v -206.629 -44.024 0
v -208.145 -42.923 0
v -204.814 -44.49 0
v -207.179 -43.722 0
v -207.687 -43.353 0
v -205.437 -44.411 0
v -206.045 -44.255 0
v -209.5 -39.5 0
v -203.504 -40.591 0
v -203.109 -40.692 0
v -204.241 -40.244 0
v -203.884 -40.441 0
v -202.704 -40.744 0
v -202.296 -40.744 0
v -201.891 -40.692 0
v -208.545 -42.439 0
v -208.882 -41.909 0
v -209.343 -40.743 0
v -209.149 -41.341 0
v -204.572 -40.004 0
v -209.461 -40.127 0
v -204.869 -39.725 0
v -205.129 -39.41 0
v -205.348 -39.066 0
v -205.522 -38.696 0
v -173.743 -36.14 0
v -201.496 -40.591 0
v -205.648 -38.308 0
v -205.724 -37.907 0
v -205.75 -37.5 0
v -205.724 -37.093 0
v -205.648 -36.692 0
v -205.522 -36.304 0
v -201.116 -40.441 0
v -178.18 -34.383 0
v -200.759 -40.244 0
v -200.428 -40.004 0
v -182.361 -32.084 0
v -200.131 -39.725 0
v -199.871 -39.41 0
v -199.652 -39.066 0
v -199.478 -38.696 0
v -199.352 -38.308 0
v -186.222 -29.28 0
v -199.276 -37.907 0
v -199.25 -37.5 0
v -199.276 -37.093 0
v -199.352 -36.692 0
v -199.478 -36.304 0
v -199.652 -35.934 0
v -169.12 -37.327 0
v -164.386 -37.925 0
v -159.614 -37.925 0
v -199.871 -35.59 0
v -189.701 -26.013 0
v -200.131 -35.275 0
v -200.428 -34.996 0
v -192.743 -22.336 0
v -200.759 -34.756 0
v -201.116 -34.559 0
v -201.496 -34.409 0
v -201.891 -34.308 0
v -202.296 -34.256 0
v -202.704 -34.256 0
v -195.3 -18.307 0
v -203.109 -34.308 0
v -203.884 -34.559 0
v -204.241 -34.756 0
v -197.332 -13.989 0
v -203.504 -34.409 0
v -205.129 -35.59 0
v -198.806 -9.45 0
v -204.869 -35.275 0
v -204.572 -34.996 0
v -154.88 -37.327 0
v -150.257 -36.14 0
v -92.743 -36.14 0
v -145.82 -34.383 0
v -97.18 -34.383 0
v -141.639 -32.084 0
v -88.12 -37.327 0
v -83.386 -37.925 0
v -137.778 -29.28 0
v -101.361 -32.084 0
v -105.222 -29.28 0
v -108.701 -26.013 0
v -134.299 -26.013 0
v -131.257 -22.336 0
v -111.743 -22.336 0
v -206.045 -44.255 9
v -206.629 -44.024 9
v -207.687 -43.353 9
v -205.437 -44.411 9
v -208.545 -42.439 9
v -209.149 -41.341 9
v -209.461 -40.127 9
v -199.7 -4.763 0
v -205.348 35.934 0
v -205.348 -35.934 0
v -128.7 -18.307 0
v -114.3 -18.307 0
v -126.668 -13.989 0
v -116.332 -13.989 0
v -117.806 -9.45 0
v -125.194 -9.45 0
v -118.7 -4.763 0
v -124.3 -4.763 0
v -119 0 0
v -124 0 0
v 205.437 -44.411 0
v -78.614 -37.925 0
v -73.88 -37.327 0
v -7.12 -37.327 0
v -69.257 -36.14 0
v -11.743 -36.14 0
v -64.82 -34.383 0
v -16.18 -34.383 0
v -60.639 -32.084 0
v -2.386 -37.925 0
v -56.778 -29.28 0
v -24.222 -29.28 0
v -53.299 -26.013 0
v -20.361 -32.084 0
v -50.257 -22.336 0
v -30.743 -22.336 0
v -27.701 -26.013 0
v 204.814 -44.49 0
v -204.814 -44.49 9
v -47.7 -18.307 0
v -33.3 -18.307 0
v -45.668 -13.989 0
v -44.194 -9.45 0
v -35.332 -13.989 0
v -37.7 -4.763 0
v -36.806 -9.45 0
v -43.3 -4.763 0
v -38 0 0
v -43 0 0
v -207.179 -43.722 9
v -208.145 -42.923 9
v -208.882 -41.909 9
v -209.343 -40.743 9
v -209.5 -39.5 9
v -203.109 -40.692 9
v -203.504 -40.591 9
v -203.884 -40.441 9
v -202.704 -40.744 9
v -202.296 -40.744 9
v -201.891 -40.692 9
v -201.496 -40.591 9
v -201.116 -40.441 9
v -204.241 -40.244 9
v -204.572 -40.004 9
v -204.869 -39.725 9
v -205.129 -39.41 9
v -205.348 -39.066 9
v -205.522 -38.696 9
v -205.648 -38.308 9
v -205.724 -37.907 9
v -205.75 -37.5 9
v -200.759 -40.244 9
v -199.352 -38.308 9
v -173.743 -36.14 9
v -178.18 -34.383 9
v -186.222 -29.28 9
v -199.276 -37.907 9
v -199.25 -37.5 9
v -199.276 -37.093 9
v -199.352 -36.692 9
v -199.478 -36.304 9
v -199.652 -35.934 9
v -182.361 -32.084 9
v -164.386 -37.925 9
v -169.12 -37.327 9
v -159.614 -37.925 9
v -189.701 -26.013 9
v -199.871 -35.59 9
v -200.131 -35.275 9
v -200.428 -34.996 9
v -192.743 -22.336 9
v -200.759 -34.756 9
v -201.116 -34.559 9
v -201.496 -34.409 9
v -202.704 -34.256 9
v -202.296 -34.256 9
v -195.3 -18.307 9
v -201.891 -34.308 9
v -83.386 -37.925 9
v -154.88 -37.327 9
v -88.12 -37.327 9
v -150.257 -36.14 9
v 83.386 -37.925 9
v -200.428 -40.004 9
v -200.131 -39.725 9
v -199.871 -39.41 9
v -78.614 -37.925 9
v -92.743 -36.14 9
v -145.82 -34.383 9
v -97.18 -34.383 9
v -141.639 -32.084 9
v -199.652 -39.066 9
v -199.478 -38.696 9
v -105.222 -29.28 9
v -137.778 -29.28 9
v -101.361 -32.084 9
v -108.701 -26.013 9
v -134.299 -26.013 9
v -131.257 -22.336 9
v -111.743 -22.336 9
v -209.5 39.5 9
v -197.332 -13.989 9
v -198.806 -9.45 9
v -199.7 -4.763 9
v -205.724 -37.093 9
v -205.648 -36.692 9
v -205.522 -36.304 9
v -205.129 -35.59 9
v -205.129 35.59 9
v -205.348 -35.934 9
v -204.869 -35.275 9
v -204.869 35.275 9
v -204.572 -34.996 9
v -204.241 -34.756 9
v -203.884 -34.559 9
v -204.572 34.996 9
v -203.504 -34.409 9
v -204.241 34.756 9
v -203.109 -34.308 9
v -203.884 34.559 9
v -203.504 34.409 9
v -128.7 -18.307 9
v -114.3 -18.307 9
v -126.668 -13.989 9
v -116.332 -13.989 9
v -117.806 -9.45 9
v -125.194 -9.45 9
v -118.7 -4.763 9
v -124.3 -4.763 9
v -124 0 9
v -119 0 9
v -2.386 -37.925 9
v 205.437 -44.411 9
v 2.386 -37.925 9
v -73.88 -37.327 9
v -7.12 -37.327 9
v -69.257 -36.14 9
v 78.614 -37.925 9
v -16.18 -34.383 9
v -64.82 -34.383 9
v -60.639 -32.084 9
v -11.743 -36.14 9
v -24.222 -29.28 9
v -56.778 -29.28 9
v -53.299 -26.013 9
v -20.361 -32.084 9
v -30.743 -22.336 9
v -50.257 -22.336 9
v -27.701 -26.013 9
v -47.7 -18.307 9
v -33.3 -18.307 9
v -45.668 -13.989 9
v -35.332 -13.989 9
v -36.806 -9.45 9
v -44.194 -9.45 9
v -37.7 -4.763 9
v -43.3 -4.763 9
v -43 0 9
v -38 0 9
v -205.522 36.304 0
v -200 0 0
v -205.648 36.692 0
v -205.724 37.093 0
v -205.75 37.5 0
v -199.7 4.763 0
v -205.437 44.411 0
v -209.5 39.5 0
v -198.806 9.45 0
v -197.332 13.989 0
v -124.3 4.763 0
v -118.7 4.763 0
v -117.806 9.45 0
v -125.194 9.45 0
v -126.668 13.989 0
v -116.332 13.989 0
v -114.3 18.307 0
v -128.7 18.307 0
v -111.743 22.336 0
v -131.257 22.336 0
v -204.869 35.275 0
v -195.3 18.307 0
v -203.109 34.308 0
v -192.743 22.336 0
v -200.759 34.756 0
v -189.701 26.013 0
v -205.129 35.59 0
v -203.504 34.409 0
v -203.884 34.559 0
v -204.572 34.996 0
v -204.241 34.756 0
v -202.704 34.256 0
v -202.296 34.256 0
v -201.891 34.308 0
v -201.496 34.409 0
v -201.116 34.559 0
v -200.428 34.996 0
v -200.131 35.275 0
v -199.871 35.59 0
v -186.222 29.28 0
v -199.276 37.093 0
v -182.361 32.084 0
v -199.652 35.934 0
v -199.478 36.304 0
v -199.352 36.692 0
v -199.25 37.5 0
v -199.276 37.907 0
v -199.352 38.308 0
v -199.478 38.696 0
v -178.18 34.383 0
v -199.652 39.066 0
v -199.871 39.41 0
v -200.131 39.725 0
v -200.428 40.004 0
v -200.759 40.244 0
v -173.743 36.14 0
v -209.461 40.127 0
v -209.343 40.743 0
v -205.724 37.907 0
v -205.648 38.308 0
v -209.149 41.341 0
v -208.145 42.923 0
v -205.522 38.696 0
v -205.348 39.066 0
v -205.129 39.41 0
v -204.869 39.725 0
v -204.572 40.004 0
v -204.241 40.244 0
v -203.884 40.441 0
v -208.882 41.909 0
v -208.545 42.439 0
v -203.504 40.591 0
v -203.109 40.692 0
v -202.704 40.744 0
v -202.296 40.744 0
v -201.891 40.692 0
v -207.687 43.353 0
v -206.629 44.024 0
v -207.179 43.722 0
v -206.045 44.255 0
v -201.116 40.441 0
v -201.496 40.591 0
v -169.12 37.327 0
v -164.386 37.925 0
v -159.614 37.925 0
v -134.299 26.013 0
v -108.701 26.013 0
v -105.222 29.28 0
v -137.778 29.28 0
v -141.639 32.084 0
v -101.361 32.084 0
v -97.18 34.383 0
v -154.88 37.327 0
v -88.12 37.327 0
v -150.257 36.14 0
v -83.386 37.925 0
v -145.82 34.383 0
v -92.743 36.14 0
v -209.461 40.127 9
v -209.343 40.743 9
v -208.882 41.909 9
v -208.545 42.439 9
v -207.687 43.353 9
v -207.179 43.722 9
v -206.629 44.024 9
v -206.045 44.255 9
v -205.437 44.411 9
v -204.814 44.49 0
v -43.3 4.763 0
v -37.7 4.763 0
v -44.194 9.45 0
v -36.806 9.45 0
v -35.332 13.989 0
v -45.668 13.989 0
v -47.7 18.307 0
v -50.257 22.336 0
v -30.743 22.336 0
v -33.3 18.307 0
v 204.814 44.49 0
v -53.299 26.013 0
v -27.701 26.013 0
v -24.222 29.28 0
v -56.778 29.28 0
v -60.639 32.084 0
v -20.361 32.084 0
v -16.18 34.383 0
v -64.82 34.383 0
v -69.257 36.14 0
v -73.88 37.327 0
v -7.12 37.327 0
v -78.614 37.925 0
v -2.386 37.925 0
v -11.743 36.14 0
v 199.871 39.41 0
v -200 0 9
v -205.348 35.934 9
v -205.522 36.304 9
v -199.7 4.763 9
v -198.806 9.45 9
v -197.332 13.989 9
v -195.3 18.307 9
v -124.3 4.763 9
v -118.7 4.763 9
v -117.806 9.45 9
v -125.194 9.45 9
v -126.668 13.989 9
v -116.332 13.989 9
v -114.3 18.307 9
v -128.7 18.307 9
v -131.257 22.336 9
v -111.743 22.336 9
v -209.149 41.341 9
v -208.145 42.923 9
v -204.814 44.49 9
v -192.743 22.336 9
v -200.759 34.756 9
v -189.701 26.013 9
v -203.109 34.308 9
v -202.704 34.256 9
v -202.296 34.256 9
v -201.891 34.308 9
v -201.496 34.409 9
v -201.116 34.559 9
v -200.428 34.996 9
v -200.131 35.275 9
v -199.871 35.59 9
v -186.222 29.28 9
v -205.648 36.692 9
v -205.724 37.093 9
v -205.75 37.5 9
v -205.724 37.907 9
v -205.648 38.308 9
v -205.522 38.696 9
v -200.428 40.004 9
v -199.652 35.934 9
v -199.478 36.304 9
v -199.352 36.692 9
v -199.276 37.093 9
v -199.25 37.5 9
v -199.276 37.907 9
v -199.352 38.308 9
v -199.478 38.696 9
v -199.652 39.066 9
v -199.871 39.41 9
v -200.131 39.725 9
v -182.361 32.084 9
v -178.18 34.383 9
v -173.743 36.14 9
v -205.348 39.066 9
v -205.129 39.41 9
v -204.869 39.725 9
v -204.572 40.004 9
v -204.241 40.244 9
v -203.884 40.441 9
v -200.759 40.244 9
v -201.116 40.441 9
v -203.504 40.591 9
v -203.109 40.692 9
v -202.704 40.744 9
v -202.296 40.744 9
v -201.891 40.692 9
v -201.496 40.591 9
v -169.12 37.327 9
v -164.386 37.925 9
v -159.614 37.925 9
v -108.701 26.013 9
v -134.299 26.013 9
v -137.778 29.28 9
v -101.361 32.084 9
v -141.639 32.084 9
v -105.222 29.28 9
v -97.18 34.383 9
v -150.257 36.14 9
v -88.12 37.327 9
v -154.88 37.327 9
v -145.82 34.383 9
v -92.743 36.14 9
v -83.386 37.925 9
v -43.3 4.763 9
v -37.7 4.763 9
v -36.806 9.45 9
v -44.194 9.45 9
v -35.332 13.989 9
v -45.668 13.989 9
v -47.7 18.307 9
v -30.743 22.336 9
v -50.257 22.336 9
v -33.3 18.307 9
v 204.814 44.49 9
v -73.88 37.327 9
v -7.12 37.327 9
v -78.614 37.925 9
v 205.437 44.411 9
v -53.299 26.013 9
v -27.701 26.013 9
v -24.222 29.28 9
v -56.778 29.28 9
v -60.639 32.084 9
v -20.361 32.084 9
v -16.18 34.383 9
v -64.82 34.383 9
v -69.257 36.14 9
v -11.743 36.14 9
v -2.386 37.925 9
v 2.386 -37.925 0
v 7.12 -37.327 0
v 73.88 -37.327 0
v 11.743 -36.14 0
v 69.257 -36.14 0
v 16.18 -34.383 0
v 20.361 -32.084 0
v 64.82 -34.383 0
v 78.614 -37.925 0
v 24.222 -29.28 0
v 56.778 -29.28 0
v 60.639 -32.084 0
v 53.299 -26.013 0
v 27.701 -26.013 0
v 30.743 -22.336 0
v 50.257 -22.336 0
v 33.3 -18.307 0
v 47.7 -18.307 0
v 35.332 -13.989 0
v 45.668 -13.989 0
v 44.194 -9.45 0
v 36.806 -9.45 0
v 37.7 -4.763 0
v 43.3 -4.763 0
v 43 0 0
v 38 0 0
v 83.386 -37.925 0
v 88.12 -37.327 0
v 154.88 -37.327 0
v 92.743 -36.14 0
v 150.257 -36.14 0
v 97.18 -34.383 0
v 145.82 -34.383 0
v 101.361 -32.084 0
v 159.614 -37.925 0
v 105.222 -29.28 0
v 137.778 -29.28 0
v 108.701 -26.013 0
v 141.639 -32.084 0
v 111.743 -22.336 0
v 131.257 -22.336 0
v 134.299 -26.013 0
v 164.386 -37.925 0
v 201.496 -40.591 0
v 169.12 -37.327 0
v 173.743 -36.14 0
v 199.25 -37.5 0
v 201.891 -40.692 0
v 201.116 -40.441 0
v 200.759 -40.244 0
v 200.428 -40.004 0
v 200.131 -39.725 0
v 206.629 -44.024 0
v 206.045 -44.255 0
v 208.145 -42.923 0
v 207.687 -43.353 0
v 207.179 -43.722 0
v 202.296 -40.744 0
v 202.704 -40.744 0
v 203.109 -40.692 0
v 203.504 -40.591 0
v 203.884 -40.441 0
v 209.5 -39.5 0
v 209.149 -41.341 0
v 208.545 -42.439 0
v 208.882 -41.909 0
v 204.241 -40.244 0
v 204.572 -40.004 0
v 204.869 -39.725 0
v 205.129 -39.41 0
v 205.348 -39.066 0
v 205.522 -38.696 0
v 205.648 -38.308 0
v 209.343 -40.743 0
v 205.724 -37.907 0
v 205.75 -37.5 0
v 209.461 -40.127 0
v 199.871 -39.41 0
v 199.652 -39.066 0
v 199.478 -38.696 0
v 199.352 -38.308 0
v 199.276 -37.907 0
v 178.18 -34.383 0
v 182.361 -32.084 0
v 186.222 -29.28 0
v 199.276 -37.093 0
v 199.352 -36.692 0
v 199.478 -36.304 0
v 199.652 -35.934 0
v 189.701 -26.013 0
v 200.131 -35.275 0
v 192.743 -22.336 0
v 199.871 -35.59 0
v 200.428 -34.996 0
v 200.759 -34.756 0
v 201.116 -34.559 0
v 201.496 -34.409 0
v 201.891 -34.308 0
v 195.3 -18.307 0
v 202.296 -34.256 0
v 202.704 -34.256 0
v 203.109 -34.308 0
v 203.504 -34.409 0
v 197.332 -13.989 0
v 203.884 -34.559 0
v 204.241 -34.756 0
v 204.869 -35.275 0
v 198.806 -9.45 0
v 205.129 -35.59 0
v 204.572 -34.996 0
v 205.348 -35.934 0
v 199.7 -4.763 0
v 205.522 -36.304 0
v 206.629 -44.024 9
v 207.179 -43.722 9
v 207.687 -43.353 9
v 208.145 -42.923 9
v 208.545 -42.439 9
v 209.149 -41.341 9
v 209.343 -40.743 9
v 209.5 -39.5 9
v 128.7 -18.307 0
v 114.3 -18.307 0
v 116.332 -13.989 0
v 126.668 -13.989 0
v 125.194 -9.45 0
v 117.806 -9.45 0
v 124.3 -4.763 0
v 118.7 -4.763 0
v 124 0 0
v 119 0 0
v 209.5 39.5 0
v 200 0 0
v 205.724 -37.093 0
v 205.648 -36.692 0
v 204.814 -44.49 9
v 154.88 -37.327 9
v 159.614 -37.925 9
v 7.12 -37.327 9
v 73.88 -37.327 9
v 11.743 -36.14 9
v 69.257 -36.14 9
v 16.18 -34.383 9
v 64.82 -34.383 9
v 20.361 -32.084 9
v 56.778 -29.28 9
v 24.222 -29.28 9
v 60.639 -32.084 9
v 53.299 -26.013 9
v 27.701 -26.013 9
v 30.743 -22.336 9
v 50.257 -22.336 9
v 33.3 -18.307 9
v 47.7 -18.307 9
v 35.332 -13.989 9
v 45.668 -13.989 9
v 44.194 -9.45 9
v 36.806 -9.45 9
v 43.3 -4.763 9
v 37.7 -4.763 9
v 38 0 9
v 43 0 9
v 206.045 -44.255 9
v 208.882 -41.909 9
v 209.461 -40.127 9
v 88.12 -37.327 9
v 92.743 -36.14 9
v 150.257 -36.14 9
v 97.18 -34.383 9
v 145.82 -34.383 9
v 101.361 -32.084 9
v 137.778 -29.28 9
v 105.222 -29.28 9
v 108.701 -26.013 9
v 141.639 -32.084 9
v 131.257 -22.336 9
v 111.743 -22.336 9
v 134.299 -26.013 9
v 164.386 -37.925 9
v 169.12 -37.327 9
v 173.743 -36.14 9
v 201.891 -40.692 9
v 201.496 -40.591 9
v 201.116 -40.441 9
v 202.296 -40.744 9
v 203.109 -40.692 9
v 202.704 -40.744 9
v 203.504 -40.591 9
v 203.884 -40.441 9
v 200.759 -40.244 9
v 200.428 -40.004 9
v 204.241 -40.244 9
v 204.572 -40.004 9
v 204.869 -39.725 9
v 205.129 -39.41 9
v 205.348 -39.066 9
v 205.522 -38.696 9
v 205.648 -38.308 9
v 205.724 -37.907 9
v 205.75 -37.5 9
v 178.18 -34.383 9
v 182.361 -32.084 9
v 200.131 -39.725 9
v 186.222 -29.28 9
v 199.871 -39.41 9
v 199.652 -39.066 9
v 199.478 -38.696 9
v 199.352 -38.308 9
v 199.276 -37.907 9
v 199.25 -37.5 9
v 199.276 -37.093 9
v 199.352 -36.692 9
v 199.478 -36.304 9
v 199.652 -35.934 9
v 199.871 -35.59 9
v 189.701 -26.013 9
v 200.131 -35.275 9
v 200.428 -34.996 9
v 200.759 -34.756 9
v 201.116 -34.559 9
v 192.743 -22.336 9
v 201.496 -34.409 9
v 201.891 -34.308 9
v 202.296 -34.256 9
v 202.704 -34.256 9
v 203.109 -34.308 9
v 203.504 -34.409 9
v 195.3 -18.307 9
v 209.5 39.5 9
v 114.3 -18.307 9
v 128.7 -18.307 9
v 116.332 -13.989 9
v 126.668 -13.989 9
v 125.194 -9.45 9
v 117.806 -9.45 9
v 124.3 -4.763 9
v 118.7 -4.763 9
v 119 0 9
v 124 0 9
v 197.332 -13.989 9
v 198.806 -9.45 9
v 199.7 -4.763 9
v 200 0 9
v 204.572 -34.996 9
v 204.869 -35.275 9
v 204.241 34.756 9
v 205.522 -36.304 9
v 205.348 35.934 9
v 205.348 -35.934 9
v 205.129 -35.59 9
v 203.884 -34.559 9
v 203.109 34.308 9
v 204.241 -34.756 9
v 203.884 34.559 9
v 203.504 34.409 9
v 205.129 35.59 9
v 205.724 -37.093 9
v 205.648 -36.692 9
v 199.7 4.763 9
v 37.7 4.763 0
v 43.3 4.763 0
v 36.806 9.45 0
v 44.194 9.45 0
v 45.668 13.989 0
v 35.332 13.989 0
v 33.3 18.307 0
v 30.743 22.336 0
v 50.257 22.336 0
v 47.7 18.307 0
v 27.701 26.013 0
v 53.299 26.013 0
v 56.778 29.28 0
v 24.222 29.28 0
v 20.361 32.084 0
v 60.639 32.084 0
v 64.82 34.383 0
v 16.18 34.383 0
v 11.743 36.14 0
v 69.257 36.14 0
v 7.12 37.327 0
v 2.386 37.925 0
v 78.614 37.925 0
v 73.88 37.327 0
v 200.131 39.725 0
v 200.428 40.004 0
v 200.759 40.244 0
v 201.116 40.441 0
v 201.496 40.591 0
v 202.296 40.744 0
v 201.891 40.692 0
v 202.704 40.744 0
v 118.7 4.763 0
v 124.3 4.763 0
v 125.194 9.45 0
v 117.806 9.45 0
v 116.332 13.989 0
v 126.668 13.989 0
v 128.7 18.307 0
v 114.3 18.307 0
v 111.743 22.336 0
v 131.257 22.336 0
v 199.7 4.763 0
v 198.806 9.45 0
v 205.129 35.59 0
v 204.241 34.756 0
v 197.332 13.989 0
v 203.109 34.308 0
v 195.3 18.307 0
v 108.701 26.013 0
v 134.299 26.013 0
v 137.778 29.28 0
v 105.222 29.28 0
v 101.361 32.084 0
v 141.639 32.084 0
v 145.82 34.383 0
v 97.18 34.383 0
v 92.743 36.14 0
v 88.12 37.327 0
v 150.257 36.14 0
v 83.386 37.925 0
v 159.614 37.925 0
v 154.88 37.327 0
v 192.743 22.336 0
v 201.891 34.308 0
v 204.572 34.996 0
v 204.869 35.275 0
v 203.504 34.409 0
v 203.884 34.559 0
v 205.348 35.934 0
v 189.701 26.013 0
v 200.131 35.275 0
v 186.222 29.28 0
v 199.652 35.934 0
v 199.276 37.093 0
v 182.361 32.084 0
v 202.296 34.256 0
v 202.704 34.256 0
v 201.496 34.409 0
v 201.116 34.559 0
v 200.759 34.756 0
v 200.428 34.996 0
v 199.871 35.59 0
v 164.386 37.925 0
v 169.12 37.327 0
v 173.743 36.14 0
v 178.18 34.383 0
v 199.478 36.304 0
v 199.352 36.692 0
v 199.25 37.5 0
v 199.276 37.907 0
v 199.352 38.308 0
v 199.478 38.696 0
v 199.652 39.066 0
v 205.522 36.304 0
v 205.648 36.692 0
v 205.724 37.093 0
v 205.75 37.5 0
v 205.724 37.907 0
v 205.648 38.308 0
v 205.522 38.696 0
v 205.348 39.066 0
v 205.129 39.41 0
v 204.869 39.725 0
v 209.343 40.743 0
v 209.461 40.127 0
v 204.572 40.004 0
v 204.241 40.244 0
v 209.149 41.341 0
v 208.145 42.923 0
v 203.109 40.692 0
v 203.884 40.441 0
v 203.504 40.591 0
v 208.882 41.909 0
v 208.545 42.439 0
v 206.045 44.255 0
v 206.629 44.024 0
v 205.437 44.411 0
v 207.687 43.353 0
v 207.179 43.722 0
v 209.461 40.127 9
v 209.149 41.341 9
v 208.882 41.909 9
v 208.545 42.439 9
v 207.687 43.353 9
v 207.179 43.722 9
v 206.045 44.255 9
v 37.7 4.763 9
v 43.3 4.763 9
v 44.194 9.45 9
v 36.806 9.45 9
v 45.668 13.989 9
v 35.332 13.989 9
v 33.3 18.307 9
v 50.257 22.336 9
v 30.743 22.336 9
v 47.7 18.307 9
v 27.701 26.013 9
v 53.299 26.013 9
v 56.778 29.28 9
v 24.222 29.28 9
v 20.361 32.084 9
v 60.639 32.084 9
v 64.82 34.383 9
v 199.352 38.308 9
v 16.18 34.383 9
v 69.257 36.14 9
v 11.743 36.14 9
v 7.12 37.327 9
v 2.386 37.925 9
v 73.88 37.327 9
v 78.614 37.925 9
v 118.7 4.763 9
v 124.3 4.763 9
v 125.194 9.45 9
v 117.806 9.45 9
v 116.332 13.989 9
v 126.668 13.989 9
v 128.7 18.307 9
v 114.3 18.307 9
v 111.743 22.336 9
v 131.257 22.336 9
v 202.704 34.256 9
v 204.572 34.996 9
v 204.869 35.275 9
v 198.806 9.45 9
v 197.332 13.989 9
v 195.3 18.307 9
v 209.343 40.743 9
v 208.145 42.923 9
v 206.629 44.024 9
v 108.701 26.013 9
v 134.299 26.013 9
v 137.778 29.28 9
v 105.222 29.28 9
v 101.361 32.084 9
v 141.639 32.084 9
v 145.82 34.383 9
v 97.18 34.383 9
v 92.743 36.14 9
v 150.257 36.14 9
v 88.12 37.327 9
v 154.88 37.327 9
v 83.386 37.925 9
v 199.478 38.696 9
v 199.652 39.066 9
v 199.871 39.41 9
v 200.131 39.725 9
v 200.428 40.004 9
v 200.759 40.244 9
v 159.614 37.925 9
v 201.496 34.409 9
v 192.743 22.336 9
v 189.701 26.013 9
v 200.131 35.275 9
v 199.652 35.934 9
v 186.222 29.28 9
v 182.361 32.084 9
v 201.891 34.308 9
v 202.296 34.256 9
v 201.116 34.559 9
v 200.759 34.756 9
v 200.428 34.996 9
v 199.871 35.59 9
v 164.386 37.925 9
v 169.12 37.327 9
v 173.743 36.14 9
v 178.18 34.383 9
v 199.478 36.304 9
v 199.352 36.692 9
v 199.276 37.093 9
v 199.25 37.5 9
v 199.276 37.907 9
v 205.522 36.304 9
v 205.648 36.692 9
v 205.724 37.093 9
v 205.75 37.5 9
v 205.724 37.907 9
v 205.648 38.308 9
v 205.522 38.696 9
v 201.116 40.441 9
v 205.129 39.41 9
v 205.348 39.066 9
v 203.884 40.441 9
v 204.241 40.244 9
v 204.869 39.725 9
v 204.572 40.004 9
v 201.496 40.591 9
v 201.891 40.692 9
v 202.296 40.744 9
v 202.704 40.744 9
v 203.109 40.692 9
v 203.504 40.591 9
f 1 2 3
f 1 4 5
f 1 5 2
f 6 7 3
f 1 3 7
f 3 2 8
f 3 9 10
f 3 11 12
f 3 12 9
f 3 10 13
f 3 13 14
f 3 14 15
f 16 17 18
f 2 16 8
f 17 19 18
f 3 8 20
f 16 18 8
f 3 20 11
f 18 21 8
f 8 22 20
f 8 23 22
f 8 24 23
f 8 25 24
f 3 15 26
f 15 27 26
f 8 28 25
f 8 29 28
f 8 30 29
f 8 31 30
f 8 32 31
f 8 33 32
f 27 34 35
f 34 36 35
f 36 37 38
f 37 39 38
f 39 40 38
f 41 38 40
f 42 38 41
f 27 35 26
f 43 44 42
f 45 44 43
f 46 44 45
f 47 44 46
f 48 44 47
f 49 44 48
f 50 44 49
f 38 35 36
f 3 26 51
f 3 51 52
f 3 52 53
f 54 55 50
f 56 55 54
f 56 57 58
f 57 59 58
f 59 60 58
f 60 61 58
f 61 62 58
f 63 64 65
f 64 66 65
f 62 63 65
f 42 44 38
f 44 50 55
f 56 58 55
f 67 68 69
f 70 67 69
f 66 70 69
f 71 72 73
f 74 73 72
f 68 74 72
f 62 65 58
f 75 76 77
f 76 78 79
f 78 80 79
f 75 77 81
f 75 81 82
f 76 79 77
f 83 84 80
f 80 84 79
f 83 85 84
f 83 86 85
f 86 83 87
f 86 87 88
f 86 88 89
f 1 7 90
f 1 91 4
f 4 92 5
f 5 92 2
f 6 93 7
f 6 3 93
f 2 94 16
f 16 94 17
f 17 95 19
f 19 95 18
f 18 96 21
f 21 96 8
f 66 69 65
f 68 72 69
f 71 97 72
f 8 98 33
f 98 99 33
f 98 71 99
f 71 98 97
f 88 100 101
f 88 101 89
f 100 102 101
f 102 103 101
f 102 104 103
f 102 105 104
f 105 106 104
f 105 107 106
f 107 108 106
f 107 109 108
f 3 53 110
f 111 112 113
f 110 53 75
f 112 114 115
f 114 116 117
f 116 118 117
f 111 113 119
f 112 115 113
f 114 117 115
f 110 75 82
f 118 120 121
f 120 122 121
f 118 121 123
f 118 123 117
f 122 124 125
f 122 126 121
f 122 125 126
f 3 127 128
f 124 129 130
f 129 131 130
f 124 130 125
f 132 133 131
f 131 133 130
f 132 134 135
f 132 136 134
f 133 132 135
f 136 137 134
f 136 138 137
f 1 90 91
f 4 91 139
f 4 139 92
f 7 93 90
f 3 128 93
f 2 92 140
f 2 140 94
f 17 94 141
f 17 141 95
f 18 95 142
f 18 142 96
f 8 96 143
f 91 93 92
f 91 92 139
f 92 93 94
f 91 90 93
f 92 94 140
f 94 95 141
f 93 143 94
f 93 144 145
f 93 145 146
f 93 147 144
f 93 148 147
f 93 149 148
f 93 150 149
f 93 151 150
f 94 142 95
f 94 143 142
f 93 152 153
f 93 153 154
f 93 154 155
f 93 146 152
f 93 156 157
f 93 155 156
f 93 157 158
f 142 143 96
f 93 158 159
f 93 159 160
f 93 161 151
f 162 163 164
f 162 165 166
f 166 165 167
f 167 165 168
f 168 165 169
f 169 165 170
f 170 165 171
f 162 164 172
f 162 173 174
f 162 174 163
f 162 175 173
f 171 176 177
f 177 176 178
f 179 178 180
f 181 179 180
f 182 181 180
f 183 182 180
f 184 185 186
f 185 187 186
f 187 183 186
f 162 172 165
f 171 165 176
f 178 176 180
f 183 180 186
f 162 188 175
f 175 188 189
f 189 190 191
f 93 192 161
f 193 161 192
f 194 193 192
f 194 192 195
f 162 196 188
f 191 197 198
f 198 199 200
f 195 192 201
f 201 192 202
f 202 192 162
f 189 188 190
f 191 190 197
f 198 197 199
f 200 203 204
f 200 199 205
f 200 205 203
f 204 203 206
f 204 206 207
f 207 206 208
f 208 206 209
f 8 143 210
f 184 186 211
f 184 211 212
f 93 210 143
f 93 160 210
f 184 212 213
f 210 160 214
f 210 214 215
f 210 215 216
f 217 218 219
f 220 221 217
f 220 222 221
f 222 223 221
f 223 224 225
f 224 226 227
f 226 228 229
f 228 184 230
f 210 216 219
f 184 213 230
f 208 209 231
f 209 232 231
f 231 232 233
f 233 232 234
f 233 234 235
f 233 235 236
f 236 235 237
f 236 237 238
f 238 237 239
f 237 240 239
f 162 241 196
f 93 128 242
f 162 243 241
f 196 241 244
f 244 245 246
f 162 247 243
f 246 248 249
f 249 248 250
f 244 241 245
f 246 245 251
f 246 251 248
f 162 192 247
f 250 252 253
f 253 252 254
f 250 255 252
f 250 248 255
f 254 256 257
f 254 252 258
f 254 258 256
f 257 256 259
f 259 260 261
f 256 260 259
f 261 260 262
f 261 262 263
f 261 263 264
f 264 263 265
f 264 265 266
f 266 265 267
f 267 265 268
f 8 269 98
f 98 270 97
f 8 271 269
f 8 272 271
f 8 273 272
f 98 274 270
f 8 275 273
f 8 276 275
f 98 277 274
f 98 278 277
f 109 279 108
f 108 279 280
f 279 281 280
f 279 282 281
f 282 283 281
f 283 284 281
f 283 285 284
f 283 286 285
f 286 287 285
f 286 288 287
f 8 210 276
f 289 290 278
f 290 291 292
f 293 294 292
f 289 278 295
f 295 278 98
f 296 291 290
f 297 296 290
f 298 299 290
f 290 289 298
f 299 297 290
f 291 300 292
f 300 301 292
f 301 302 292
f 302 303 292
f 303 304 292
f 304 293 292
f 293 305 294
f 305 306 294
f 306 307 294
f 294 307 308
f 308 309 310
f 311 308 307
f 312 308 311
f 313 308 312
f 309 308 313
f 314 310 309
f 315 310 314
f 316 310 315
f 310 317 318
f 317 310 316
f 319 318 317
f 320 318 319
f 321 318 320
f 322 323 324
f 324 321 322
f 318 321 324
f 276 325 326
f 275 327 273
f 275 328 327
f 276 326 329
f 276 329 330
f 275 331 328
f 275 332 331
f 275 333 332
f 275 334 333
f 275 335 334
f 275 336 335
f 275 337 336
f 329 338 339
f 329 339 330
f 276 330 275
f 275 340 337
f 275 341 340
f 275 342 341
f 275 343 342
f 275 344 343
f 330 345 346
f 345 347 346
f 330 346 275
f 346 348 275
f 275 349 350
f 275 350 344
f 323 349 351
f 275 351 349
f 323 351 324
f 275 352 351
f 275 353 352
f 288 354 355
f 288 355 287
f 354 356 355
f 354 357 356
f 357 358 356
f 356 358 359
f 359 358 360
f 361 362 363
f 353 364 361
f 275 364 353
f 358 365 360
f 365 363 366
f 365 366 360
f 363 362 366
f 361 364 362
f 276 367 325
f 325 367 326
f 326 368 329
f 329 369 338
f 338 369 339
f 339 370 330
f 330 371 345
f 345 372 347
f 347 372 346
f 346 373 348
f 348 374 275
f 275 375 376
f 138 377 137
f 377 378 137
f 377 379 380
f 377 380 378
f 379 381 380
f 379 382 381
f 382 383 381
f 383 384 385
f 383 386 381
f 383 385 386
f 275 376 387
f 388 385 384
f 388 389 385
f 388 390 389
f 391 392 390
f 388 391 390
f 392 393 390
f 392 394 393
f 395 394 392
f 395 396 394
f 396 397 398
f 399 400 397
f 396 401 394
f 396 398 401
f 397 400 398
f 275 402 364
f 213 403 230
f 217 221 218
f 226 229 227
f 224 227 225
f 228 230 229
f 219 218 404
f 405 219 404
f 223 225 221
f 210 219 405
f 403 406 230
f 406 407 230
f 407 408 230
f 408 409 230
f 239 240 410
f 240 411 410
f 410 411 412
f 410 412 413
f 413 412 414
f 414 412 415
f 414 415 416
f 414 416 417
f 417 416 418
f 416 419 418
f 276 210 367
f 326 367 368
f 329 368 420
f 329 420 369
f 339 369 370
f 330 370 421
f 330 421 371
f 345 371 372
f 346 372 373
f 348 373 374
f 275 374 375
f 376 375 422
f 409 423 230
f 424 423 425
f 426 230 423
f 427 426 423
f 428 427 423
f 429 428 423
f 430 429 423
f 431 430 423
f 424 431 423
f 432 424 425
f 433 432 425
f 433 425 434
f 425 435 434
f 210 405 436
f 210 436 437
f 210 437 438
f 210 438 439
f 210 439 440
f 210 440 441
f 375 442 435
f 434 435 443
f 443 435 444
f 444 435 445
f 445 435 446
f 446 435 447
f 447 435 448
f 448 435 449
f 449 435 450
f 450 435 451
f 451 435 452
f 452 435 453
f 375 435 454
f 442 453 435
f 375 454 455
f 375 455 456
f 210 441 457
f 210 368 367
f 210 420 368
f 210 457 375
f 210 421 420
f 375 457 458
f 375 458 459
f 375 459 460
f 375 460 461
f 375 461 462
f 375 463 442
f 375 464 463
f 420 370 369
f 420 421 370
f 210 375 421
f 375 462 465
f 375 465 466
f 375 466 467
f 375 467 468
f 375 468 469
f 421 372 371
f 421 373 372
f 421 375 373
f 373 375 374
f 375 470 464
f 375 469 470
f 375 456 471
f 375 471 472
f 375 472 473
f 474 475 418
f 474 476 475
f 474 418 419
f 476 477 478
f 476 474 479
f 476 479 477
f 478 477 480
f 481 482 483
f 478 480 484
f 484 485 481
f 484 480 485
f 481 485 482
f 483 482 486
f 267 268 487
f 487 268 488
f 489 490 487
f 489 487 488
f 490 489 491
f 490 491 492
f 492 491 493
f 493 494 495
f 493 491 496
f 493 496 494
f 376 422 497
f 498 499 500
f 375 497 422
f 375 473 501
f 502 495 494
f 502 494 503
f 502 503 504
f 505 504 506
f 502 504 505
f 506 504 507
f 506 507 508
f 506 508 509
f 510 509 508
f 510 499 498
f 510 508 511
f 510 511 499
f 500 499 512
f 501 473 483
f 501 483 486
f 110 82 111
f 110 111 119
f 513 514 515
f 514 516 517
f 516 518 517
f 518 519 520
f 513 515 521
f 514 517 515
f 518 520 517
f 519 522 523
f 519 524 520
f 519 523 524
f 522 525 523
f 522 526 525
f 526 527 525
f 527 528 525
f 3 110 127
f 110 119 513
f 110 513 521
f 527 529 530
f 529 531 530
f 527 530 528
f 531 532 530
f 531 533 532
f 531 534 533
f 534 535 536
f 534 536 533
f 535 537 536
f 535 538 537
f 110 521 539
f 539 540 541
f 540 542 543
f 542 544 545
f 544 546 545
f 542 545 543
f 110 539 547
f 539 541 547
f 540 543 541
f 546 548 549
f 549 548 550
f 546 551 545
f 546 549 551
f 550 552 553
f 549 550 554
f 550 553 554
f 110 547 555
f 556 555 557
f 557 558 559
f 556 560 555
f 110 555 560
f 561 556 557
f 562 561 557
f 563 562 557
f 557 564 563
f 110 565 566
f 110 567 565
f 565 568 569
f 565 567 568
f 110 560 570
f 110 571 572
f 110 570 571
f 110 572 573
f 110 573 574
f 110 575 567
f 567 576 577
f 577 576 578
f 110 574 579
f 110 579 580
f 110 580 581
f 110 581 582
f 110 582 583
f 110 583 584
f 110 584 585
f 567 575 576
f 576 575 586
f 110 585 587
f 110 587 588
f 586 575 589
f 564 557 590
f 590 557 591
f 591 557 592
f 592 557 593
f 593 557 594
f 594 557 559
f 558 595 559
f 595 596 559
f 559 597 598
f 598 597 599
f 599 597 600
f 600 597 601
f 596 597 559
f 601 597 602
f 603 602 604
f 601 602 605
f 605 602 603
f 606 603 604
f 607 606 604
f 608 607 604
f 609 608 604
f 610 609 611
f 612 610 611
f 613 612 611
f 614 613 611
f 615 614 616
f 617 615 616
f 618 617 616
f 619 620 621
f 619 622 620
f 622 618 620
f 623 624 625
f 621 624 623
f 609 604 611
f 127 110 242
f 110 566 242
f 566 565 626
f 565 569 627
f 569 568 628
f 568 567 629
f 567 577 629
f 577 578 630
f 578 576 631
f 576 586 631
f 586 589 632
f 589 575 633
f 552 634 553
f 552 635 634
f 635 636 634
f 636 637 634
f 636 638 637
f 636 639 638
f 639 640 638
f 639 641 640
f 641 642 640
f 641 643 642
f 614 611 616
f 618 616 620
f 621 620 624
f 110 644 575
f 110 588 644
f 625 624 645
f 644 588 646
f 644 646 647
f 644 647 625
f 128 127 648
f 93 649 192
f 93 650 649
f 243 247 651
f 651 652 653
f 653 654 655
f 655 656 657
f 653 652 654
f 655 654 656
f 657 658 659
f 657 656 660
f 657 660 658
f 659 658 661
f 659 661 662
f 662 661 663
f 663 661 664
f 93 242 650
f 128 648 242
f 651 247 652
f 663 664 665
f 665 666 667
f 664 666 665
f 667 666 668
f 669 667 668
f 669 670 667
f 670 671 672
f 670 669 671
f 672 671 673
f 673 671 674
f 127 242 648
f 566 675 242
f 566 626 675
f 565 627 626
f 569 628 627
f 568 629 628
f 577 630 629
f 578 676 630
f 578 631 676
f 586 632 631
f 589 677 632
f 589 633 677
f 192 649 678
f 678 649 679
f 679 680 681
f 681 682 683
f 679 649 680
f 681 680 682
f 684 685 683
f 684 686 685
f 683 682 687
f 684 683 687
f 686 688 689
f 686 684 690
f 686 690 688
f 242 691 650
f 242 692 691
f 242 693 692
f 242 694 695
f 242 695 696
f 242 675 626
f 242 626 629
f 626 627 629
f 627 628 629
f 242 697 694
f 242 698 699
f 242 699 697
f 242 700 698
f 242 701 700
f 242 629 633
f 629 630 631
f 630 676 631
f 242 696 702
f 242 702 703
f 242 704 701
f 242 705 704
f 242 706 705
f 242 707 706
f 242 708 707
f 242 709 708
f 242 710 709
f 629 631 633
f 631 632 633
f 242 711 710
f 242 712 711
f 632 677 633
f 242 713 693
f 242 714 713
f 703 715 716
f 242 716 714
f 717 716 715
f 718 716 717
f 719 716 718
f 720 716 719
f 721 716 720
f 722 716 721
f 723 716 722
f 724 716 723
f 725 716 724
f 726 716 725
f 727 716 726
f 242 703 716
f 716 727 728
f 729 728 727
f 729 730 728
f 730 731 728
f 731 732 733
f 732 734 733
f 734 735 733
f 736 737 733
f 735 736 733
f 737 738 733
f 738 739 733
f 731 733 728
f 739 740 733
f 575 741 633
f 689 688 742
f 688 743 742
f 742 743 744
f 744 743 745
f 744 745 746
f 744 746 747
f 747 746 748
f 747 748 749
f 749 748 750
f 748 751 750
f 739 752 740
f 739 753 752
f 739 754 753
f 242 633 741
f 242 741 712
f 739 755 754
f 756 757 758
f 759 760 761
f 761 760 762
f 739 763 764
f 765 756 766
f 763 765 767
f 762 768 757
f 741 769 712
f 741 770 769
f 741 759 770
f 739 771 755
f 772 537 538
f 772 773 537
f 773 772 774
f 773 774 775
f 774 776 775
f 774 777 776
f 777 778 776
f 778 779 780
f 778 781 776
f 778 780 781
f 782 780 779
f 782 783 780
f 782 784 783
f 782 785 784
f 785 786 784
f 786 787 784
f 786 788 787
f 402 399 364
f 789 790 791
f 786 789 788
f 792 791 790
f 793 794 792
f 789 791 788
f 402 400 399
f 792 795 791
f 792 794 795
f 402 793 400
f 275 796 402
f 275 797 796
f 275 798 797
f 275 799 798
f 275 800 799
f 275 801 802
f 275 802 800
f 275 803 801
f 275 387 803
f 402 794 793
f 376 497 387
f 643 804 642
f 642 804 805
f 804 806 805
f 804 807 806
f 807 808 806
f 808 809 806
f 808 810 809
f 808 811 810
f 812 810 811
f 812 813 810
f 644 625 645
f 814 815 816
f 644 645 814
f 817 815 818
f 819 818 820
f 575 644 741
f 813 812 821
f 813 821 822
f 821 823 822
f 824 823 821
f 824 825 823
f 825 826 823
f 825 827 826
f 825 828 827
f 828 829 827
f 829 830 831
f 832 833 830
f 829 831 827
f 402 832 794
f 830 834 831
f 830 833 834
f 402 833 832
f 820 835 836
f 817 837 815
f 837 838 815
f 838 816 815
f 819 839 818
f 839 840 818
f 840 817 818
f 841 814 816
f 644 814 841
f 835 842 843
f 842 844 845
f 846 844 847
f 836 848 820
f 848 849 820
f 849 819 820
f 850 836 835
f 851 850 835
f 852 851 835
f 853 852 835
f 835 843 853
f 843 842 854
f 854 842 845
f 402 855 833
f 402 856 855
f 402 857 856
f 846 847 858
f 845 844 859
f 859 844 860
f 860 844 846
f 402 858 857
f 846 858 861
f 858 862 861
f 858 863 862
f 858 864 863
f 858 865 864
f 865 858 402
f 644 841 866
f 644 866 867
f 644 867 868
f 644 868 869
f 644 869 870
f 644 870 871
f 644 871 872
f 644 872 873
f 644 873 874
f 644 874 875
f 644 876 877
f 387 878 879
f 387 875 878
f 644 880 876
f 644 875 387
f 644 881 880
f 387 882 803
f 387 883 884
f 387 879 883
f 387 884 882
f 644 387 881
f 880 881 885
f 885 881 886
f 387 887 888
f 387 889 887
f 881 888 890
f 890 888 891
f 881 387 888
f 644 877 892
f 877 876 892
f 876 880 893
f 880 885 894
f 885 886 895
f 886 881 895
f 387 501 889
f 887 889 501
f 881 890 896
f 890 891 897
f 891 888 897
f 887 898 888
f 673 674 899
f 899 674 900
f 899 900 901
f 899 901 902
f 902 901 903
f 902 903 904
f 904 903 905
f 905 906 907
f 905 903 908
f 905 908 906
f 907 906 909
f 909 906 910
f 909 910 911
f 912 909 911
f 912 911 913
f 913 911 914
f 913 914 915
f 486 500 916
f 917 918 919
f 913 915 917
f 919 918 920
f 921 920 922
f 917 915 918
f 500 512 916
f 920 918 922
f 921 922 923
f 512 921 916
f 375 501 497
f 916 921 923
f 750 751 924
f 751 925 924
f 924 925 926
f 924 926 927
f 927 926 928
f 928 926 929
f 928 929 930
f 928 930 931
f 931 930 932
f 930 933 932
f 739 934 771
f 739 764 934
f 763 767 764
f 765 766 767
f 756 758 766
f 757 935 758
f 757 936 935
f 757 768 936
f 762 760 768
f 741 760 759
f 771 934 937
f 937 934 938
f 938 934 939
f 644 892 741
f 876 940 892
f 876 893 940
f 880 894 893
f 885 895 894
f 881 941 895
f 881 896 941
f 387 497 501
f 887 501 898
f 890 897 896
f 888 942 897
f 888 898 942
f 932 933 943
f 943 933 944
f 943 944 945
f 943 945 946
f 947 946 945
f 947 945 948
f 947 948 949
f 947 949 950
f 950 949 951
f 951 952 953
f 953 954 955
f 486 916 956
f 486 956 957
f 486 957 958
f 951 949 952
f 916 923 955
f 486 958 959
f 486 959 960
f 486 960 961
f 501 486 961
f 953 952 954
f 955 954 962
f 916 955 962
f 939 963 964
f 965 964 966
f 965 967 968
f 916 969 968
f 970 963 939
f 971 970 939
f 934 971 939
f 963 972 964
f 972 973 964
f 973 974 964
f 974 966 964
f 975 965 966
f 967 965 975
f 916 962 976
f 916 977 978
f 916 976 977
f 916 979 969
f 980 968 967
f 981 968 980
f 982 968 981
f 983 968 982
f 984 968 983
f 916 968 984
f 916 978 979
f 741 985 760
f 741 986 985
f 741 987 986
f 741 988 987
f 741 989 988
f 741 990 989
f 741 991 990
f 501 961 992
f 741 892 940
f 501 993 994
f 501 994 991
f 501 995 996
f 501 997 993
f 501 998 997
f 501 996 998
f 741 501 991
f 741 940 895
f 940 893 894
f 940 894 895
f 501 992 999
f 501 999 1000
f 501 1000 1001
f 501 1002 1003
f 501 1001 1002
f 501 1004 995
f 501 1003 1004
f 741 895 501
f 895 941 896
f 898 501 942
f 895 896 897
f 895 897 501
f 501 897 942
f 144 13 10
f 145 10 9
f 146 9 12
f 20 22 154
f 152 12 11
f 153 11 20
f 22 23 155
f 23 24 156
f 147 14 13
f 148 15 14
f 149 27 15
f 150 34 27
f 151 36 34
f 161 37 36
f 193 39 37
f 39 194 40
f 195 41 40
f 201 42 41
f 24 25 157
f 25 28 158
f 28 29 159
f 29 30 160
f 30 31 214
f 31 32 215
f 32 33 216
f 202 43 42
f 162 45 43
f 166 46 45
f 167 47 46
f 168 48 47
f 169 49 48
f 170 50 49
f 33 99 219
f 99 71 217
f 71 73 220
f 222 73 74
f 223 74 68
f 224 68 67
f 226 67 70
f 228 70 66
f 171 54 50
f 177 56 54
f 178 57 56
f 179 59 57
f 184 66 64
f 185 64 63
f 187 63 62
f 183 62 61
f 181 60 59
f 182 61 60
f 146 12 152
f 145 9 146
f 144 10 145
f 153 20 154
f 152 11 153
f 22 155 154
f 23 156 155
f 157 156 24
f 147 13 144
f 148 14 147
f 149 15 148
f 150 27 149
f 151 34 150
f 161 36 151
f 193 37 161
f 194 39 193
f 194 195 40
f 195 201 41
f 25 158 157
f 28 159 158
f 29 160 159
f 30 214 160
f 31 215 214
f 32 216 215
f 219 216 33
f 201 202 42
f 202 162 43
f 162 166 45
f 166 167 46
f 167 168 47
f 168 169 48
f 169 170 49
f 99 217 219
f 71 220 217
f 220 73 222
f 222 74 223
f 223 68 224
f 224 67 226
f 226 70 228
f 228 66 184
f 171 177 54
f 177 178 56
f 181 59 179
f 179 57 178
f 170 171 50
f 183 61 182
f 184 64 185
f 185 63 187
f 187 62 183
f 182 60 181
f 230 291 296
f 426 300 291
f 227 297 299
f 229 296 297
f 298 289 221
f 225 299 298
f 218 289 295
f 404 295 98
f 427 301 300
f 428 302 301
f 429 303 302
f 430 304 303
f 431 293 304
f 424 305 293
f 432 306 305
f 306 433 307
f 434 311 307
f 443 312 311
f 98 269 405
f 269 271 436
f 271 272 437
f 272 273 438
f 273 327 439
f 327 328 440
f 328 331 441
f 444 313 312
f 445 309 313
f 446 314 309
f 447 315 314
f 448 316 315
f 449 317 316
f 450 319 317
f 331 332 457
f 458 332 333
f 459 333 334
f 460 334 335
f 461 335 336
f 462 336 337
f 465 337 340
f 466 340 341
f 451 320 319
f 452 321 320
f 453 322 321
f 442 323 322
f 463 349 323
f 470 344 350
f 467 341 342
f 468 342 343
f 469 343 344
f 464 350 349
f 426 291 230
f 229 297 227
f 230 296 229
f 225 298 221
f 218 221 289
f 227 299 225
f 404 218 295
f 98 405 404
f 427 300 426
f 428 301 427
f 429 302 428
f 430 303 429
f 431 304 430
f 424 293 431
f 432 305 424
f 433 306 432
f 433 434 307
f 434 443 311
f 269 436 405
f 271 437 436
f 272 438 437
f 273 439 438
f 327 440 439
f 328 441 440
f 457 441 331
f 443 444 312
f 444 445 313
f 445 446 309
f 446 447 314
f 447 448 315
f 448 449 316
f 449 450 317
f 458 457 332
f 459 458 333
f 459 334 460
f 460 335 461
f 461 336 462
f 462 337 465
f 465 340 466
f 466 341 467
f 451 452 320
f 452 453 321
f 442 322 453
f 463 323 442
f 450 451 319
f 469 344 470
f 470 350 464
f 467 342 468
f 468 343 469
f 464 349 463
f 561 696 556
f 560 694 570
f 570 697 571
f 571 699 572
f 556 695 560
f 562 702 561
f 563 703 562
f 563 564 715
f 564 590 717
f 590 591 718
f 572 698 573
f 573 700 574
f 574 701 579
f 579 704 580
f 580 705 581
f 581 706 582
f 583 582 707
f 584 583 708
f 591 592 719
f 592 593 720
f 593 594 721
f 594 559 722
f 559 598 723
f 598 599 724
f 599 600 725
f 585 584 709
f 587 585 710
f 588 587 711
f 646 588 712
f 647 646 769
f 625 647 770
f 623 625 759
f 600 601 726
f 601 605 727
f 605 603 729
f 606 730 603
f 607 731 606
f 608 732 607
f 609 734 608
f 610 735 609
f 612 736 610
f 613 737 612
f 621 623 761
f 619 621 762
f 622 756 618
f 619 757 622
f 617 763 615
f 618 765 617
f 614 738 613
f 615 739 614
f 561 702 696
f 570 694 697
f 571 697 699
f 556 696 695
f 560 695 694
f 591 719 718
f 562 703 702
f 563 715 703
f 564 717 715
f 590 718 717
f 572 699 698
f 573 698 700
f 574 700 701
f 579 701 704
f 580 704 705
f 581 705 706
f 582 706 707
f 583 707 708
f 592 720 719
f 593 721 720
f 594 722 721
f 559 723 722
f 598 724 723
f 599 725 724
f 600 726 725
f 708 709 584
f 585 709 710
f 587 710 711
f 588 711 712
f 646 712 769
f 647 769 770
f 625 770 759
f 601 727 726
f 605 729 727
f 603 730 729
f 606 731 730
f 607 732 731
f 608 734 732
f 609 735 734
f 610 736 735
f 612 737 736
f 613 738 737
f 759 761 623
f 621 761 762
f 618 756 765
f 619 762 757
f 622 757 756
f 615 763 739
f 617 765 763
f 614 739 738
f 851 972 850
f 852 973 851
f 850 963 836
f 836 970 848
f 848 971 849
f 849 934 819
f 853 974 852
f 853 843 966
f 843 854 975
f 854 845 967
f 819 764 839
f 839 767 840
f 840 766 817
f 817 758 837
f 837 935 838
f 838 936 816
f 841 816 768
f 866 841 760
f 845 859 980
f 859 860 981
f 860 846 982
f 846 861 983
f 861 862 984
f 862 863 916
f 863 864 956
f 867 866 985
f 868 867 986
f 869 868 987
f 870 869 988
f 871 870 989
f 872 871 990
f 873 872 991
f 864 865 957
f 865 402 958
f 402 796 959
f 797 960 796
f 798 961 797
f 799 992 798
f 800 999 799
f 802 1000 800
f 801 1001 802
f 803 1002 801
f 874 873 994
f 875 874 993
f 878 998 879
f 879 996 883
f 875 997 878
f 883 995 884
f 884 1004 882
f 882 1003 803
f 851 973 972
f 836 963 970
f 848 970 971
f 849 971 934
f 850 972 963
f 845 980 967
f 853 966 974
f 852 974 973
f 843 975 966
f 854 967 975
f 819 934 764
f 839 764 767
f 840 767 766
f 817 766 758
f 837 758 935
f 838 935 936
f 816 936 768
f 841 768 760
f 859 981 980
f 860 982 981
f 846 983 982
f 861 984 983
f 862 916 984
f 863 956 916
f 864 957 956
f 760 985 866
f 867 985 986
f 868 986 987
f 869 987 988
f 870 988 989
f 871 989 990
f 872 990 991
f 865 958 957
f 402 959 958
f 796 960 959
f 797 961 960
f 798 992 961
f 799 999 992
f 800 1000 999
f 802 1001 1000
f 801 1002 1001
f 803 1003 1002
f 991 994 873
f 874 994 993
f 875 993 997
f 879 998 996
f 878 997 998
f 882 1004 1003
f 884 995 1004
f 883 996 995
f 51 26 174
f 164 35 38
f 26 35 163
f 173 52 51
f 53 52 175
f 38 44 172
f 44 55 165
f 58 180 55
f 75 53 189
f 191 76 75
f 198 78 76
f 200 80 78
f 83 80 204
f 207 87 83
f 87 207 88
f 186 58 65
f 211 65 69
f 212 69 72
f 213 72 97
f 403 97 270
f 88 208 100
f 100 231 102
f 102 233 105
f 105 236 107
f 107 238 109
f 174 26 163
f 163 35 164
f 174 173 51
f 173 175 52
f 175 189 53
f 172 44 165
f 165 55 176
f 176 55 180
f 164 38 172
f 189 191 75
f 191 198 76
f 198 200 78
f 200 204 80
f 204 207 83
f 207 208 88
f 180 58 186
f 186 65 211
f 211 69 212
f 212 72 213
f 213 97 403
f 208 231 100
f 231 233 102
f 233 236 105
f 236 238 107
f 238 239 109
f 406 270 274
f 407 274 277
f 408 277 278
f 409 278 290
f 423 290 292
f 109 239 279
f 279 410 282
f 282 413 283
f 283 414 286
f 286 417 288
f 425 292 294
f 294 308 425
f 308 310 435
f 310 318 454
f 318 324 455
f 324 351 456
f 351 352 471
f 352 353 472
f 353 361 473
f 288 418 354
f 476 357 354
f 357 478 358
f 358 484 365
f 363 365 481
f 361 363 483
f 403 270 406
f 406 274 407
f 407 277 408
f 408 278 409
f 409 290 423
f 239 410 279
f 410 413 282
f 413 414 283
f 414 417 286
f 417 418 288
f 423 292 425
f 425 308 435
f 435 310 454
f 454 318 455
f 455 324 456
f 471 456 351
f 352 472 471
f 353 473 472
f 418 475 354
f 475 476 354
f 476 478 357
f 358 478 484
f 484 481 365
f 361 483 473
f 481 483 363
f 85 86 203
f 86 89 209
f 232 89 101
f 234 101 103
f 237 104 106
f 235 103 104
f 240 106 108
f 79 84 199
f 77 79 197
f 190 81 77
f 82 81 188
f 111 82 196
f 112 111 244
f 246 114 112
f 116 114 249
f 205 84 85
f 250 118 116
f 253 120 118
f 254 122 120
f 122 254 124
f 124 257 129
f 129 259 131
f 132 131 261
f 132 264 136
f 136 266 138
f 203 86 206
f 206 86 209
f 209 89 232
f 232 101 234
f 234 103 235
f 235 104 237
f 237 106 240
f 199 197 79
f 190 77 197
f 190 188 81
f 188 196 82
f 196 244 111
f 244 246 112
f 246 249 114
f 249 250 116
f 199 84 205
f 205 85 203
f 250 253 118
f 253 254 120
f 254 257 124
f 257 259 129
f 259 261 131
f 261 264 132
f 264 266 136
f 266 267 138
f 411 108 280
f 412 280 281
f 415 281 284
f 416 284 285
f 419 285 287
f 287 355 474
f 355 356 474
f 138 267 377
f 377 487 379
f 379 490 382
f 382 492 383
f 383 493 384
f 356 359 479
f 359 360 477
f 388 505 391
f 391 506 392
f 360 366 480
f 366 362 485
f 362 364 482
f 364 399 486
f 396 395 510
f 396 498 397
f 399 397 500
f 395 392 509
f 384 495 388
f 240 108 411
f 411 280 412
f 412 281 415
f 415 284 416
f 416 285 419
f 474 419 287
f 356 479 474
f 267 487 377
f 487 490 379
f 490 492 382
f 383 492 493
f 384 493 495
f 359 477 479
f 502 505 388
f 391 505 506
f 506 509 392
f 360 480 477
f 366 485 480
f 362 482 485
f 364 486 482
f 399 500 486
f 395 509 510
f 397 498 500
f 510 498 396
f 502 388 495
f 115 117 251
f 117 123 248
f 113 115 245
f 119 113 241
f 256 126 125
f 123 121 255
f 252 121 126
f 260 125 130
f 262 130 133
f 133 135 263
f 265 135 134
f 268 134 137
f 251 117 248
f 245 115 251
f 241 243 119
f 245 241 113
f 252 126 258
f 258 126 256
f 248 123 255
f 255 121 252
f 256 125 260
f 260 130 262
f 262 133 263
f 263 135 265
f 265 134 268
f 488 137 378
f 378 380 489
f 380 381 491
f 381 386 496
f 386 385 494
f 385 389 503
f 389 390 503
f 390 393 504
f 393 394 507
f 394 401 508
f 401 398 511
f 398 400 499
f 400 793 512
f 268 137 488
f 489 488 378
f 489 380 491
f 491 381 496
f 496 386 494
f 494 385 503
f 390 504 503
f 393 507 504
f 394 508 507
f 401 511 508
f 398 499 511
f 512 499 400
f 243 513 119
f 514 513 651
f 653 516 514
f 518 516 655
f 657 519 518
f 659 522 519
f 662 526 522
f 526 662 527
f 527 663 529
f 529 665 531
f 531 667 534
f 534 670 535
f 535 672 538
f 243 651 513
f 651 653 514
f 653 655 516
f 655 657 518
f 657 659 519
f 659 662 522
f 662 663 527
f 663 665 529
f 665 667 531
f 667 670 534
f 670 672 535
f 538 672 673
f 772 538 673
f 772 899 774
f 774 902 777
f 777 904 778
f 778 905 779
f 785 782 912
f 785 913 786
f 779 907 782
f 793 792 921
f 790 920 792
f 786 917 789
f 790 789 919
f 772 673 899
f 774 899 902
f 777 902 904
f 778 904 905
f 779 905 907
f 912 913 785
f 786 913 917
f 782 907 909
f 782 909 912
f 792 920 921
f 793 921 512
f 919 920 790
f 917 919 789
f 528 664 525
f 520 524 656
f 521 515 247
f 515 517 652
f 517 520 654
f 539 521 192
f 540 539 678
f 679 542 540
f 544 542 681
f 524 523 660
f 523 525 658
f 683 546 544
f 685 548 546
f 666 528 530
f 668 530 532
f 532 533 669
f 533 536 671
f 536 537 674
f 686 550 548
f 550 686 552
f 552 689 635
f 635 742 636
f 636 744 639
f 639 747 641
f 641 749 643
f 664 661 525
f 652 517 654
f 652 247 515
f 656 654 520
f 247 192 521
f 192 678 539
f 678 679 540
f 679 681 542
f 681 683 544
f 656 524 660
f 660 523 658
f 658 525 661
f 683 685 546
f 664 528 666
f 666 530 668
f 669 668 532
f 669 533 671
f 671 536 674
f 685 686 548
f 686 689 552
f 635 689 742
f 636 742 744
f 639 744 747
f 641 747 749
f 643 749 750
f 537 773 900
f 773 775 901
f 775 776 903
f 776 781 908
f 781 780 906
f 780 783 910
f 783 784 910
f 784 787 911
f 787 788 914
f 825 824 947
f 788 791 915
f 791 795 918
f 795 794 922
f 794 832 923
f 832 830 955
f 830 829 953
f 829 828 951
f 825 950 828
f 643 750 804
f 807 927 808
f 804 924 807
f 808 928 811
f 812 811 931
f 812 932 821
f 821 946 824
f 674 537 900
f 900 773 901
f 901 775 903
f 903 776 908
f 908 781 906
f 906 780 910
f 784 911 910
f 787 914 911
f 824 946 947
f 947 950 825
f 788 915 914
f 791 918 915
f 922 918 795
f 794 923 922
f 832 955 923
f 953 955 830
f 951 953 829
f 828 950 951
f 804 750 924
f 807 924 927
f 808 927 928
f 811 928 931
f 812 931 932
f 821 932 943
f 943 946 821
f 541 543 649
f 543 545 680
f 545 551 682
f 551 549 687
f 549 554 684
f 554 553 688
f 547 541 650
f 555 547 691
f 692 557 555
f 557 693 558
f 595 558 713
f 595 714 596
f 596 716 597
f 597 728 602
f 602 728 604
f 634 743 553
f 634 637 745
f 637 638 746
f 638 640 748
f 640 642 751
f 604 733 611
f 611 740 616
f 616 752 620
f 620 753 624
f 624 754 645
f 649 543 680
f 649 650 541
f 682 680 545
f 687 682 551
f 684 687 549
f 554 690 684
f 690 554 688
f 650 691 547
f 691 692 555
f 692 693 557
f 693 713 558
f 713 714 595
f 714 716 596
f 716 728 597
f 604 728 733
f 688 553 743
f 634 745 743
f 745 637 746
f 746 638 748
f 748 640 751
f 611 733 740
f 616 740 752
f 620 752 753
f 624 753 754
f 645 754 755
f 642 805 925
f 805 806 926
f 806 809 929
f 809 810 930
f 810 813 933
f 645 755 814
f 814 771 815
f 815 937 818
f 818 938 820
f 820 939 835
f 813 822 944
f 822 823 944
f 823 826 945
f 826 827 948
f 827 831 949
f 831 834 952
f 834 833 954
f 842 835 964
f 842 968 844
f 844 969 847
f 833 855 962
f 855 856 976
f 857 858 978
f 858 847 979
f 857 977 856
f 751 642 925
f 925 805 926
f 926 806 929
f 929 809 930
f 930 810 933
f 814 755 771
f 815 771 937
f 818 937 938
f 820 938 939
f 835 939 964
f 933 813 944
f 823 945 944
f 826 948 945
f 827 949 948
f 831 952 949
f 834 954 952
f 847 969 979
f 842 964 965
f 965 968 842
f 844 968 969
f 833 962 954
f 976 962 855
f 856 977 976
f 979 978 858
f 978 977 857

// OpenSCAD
$fn = 50;

difference() {
	union() {
		hull() {
			translate(v = [-204.5, 39.5, 0]) {
				cylinder(h = 9, r = 5);
			}
			translate(v = [204.5, 39.5, 0]) {
				cylinder(h = 9, r = 5);
			}
			translate(v = [-204.5, -39.5, 0]) {
				cylinder(h = 9, r = 5);
			}
			translate(v = [204.5, -39.5, 0]) {
				cylinder(h = 9, r = 5);
			}
		}
	}
	union() {
		translate(v = [-202.5, -37.5, -100.0]) {
			cylinder(h = 200, r = 3.25);
		}
		translate(v = [-202.5, 37.5, -100.0]) {
			cylinder(h = 200, r = 3.25);
		}
		translate(v = [202.5, -37.5, -100.0]) {
			cylinder(h = 200, r = 3.25);
		}
		translate(v = [202.5, 37.5, -100.0]) {
			cylinder(h = 200, r = 3.25);
		}
		translate(v = [-202.5, -37.5, -100.0]) {
			cylinder(h = 200, r = 1.8);
		}
		translate(v = [-202.5, 37.5, -100.0]) {
			cylinder(h = 200, r = 1.8);
		}
		translate(v = [202.5, -37.5, -100.0]) {
			cylinder(h = 200, r = 1.8);
		}
		translate(v = [202.5, 37.5, -100.0]) {
			cylinder(h = 200, r = 1.8);
		}
		translate(v = [-162.0, 0, 0.0]) {
			cylinder(h = 9, r = 38.0);
		}
		translate(v = [-81.0, 0, 0.0]) {
			cylinder(h = 9, r = 38.0);
		}
		cylinder(h = 9, r = 38.0);
		translate(v = [81.0, 0, 0.0]) {
			cylinder(h = 9, r = 38.0);
		}
		translate(v = [162.0, 0, 0.0]) {
			cylinder(h = 9, r = 38.0);
		}
	}
}
